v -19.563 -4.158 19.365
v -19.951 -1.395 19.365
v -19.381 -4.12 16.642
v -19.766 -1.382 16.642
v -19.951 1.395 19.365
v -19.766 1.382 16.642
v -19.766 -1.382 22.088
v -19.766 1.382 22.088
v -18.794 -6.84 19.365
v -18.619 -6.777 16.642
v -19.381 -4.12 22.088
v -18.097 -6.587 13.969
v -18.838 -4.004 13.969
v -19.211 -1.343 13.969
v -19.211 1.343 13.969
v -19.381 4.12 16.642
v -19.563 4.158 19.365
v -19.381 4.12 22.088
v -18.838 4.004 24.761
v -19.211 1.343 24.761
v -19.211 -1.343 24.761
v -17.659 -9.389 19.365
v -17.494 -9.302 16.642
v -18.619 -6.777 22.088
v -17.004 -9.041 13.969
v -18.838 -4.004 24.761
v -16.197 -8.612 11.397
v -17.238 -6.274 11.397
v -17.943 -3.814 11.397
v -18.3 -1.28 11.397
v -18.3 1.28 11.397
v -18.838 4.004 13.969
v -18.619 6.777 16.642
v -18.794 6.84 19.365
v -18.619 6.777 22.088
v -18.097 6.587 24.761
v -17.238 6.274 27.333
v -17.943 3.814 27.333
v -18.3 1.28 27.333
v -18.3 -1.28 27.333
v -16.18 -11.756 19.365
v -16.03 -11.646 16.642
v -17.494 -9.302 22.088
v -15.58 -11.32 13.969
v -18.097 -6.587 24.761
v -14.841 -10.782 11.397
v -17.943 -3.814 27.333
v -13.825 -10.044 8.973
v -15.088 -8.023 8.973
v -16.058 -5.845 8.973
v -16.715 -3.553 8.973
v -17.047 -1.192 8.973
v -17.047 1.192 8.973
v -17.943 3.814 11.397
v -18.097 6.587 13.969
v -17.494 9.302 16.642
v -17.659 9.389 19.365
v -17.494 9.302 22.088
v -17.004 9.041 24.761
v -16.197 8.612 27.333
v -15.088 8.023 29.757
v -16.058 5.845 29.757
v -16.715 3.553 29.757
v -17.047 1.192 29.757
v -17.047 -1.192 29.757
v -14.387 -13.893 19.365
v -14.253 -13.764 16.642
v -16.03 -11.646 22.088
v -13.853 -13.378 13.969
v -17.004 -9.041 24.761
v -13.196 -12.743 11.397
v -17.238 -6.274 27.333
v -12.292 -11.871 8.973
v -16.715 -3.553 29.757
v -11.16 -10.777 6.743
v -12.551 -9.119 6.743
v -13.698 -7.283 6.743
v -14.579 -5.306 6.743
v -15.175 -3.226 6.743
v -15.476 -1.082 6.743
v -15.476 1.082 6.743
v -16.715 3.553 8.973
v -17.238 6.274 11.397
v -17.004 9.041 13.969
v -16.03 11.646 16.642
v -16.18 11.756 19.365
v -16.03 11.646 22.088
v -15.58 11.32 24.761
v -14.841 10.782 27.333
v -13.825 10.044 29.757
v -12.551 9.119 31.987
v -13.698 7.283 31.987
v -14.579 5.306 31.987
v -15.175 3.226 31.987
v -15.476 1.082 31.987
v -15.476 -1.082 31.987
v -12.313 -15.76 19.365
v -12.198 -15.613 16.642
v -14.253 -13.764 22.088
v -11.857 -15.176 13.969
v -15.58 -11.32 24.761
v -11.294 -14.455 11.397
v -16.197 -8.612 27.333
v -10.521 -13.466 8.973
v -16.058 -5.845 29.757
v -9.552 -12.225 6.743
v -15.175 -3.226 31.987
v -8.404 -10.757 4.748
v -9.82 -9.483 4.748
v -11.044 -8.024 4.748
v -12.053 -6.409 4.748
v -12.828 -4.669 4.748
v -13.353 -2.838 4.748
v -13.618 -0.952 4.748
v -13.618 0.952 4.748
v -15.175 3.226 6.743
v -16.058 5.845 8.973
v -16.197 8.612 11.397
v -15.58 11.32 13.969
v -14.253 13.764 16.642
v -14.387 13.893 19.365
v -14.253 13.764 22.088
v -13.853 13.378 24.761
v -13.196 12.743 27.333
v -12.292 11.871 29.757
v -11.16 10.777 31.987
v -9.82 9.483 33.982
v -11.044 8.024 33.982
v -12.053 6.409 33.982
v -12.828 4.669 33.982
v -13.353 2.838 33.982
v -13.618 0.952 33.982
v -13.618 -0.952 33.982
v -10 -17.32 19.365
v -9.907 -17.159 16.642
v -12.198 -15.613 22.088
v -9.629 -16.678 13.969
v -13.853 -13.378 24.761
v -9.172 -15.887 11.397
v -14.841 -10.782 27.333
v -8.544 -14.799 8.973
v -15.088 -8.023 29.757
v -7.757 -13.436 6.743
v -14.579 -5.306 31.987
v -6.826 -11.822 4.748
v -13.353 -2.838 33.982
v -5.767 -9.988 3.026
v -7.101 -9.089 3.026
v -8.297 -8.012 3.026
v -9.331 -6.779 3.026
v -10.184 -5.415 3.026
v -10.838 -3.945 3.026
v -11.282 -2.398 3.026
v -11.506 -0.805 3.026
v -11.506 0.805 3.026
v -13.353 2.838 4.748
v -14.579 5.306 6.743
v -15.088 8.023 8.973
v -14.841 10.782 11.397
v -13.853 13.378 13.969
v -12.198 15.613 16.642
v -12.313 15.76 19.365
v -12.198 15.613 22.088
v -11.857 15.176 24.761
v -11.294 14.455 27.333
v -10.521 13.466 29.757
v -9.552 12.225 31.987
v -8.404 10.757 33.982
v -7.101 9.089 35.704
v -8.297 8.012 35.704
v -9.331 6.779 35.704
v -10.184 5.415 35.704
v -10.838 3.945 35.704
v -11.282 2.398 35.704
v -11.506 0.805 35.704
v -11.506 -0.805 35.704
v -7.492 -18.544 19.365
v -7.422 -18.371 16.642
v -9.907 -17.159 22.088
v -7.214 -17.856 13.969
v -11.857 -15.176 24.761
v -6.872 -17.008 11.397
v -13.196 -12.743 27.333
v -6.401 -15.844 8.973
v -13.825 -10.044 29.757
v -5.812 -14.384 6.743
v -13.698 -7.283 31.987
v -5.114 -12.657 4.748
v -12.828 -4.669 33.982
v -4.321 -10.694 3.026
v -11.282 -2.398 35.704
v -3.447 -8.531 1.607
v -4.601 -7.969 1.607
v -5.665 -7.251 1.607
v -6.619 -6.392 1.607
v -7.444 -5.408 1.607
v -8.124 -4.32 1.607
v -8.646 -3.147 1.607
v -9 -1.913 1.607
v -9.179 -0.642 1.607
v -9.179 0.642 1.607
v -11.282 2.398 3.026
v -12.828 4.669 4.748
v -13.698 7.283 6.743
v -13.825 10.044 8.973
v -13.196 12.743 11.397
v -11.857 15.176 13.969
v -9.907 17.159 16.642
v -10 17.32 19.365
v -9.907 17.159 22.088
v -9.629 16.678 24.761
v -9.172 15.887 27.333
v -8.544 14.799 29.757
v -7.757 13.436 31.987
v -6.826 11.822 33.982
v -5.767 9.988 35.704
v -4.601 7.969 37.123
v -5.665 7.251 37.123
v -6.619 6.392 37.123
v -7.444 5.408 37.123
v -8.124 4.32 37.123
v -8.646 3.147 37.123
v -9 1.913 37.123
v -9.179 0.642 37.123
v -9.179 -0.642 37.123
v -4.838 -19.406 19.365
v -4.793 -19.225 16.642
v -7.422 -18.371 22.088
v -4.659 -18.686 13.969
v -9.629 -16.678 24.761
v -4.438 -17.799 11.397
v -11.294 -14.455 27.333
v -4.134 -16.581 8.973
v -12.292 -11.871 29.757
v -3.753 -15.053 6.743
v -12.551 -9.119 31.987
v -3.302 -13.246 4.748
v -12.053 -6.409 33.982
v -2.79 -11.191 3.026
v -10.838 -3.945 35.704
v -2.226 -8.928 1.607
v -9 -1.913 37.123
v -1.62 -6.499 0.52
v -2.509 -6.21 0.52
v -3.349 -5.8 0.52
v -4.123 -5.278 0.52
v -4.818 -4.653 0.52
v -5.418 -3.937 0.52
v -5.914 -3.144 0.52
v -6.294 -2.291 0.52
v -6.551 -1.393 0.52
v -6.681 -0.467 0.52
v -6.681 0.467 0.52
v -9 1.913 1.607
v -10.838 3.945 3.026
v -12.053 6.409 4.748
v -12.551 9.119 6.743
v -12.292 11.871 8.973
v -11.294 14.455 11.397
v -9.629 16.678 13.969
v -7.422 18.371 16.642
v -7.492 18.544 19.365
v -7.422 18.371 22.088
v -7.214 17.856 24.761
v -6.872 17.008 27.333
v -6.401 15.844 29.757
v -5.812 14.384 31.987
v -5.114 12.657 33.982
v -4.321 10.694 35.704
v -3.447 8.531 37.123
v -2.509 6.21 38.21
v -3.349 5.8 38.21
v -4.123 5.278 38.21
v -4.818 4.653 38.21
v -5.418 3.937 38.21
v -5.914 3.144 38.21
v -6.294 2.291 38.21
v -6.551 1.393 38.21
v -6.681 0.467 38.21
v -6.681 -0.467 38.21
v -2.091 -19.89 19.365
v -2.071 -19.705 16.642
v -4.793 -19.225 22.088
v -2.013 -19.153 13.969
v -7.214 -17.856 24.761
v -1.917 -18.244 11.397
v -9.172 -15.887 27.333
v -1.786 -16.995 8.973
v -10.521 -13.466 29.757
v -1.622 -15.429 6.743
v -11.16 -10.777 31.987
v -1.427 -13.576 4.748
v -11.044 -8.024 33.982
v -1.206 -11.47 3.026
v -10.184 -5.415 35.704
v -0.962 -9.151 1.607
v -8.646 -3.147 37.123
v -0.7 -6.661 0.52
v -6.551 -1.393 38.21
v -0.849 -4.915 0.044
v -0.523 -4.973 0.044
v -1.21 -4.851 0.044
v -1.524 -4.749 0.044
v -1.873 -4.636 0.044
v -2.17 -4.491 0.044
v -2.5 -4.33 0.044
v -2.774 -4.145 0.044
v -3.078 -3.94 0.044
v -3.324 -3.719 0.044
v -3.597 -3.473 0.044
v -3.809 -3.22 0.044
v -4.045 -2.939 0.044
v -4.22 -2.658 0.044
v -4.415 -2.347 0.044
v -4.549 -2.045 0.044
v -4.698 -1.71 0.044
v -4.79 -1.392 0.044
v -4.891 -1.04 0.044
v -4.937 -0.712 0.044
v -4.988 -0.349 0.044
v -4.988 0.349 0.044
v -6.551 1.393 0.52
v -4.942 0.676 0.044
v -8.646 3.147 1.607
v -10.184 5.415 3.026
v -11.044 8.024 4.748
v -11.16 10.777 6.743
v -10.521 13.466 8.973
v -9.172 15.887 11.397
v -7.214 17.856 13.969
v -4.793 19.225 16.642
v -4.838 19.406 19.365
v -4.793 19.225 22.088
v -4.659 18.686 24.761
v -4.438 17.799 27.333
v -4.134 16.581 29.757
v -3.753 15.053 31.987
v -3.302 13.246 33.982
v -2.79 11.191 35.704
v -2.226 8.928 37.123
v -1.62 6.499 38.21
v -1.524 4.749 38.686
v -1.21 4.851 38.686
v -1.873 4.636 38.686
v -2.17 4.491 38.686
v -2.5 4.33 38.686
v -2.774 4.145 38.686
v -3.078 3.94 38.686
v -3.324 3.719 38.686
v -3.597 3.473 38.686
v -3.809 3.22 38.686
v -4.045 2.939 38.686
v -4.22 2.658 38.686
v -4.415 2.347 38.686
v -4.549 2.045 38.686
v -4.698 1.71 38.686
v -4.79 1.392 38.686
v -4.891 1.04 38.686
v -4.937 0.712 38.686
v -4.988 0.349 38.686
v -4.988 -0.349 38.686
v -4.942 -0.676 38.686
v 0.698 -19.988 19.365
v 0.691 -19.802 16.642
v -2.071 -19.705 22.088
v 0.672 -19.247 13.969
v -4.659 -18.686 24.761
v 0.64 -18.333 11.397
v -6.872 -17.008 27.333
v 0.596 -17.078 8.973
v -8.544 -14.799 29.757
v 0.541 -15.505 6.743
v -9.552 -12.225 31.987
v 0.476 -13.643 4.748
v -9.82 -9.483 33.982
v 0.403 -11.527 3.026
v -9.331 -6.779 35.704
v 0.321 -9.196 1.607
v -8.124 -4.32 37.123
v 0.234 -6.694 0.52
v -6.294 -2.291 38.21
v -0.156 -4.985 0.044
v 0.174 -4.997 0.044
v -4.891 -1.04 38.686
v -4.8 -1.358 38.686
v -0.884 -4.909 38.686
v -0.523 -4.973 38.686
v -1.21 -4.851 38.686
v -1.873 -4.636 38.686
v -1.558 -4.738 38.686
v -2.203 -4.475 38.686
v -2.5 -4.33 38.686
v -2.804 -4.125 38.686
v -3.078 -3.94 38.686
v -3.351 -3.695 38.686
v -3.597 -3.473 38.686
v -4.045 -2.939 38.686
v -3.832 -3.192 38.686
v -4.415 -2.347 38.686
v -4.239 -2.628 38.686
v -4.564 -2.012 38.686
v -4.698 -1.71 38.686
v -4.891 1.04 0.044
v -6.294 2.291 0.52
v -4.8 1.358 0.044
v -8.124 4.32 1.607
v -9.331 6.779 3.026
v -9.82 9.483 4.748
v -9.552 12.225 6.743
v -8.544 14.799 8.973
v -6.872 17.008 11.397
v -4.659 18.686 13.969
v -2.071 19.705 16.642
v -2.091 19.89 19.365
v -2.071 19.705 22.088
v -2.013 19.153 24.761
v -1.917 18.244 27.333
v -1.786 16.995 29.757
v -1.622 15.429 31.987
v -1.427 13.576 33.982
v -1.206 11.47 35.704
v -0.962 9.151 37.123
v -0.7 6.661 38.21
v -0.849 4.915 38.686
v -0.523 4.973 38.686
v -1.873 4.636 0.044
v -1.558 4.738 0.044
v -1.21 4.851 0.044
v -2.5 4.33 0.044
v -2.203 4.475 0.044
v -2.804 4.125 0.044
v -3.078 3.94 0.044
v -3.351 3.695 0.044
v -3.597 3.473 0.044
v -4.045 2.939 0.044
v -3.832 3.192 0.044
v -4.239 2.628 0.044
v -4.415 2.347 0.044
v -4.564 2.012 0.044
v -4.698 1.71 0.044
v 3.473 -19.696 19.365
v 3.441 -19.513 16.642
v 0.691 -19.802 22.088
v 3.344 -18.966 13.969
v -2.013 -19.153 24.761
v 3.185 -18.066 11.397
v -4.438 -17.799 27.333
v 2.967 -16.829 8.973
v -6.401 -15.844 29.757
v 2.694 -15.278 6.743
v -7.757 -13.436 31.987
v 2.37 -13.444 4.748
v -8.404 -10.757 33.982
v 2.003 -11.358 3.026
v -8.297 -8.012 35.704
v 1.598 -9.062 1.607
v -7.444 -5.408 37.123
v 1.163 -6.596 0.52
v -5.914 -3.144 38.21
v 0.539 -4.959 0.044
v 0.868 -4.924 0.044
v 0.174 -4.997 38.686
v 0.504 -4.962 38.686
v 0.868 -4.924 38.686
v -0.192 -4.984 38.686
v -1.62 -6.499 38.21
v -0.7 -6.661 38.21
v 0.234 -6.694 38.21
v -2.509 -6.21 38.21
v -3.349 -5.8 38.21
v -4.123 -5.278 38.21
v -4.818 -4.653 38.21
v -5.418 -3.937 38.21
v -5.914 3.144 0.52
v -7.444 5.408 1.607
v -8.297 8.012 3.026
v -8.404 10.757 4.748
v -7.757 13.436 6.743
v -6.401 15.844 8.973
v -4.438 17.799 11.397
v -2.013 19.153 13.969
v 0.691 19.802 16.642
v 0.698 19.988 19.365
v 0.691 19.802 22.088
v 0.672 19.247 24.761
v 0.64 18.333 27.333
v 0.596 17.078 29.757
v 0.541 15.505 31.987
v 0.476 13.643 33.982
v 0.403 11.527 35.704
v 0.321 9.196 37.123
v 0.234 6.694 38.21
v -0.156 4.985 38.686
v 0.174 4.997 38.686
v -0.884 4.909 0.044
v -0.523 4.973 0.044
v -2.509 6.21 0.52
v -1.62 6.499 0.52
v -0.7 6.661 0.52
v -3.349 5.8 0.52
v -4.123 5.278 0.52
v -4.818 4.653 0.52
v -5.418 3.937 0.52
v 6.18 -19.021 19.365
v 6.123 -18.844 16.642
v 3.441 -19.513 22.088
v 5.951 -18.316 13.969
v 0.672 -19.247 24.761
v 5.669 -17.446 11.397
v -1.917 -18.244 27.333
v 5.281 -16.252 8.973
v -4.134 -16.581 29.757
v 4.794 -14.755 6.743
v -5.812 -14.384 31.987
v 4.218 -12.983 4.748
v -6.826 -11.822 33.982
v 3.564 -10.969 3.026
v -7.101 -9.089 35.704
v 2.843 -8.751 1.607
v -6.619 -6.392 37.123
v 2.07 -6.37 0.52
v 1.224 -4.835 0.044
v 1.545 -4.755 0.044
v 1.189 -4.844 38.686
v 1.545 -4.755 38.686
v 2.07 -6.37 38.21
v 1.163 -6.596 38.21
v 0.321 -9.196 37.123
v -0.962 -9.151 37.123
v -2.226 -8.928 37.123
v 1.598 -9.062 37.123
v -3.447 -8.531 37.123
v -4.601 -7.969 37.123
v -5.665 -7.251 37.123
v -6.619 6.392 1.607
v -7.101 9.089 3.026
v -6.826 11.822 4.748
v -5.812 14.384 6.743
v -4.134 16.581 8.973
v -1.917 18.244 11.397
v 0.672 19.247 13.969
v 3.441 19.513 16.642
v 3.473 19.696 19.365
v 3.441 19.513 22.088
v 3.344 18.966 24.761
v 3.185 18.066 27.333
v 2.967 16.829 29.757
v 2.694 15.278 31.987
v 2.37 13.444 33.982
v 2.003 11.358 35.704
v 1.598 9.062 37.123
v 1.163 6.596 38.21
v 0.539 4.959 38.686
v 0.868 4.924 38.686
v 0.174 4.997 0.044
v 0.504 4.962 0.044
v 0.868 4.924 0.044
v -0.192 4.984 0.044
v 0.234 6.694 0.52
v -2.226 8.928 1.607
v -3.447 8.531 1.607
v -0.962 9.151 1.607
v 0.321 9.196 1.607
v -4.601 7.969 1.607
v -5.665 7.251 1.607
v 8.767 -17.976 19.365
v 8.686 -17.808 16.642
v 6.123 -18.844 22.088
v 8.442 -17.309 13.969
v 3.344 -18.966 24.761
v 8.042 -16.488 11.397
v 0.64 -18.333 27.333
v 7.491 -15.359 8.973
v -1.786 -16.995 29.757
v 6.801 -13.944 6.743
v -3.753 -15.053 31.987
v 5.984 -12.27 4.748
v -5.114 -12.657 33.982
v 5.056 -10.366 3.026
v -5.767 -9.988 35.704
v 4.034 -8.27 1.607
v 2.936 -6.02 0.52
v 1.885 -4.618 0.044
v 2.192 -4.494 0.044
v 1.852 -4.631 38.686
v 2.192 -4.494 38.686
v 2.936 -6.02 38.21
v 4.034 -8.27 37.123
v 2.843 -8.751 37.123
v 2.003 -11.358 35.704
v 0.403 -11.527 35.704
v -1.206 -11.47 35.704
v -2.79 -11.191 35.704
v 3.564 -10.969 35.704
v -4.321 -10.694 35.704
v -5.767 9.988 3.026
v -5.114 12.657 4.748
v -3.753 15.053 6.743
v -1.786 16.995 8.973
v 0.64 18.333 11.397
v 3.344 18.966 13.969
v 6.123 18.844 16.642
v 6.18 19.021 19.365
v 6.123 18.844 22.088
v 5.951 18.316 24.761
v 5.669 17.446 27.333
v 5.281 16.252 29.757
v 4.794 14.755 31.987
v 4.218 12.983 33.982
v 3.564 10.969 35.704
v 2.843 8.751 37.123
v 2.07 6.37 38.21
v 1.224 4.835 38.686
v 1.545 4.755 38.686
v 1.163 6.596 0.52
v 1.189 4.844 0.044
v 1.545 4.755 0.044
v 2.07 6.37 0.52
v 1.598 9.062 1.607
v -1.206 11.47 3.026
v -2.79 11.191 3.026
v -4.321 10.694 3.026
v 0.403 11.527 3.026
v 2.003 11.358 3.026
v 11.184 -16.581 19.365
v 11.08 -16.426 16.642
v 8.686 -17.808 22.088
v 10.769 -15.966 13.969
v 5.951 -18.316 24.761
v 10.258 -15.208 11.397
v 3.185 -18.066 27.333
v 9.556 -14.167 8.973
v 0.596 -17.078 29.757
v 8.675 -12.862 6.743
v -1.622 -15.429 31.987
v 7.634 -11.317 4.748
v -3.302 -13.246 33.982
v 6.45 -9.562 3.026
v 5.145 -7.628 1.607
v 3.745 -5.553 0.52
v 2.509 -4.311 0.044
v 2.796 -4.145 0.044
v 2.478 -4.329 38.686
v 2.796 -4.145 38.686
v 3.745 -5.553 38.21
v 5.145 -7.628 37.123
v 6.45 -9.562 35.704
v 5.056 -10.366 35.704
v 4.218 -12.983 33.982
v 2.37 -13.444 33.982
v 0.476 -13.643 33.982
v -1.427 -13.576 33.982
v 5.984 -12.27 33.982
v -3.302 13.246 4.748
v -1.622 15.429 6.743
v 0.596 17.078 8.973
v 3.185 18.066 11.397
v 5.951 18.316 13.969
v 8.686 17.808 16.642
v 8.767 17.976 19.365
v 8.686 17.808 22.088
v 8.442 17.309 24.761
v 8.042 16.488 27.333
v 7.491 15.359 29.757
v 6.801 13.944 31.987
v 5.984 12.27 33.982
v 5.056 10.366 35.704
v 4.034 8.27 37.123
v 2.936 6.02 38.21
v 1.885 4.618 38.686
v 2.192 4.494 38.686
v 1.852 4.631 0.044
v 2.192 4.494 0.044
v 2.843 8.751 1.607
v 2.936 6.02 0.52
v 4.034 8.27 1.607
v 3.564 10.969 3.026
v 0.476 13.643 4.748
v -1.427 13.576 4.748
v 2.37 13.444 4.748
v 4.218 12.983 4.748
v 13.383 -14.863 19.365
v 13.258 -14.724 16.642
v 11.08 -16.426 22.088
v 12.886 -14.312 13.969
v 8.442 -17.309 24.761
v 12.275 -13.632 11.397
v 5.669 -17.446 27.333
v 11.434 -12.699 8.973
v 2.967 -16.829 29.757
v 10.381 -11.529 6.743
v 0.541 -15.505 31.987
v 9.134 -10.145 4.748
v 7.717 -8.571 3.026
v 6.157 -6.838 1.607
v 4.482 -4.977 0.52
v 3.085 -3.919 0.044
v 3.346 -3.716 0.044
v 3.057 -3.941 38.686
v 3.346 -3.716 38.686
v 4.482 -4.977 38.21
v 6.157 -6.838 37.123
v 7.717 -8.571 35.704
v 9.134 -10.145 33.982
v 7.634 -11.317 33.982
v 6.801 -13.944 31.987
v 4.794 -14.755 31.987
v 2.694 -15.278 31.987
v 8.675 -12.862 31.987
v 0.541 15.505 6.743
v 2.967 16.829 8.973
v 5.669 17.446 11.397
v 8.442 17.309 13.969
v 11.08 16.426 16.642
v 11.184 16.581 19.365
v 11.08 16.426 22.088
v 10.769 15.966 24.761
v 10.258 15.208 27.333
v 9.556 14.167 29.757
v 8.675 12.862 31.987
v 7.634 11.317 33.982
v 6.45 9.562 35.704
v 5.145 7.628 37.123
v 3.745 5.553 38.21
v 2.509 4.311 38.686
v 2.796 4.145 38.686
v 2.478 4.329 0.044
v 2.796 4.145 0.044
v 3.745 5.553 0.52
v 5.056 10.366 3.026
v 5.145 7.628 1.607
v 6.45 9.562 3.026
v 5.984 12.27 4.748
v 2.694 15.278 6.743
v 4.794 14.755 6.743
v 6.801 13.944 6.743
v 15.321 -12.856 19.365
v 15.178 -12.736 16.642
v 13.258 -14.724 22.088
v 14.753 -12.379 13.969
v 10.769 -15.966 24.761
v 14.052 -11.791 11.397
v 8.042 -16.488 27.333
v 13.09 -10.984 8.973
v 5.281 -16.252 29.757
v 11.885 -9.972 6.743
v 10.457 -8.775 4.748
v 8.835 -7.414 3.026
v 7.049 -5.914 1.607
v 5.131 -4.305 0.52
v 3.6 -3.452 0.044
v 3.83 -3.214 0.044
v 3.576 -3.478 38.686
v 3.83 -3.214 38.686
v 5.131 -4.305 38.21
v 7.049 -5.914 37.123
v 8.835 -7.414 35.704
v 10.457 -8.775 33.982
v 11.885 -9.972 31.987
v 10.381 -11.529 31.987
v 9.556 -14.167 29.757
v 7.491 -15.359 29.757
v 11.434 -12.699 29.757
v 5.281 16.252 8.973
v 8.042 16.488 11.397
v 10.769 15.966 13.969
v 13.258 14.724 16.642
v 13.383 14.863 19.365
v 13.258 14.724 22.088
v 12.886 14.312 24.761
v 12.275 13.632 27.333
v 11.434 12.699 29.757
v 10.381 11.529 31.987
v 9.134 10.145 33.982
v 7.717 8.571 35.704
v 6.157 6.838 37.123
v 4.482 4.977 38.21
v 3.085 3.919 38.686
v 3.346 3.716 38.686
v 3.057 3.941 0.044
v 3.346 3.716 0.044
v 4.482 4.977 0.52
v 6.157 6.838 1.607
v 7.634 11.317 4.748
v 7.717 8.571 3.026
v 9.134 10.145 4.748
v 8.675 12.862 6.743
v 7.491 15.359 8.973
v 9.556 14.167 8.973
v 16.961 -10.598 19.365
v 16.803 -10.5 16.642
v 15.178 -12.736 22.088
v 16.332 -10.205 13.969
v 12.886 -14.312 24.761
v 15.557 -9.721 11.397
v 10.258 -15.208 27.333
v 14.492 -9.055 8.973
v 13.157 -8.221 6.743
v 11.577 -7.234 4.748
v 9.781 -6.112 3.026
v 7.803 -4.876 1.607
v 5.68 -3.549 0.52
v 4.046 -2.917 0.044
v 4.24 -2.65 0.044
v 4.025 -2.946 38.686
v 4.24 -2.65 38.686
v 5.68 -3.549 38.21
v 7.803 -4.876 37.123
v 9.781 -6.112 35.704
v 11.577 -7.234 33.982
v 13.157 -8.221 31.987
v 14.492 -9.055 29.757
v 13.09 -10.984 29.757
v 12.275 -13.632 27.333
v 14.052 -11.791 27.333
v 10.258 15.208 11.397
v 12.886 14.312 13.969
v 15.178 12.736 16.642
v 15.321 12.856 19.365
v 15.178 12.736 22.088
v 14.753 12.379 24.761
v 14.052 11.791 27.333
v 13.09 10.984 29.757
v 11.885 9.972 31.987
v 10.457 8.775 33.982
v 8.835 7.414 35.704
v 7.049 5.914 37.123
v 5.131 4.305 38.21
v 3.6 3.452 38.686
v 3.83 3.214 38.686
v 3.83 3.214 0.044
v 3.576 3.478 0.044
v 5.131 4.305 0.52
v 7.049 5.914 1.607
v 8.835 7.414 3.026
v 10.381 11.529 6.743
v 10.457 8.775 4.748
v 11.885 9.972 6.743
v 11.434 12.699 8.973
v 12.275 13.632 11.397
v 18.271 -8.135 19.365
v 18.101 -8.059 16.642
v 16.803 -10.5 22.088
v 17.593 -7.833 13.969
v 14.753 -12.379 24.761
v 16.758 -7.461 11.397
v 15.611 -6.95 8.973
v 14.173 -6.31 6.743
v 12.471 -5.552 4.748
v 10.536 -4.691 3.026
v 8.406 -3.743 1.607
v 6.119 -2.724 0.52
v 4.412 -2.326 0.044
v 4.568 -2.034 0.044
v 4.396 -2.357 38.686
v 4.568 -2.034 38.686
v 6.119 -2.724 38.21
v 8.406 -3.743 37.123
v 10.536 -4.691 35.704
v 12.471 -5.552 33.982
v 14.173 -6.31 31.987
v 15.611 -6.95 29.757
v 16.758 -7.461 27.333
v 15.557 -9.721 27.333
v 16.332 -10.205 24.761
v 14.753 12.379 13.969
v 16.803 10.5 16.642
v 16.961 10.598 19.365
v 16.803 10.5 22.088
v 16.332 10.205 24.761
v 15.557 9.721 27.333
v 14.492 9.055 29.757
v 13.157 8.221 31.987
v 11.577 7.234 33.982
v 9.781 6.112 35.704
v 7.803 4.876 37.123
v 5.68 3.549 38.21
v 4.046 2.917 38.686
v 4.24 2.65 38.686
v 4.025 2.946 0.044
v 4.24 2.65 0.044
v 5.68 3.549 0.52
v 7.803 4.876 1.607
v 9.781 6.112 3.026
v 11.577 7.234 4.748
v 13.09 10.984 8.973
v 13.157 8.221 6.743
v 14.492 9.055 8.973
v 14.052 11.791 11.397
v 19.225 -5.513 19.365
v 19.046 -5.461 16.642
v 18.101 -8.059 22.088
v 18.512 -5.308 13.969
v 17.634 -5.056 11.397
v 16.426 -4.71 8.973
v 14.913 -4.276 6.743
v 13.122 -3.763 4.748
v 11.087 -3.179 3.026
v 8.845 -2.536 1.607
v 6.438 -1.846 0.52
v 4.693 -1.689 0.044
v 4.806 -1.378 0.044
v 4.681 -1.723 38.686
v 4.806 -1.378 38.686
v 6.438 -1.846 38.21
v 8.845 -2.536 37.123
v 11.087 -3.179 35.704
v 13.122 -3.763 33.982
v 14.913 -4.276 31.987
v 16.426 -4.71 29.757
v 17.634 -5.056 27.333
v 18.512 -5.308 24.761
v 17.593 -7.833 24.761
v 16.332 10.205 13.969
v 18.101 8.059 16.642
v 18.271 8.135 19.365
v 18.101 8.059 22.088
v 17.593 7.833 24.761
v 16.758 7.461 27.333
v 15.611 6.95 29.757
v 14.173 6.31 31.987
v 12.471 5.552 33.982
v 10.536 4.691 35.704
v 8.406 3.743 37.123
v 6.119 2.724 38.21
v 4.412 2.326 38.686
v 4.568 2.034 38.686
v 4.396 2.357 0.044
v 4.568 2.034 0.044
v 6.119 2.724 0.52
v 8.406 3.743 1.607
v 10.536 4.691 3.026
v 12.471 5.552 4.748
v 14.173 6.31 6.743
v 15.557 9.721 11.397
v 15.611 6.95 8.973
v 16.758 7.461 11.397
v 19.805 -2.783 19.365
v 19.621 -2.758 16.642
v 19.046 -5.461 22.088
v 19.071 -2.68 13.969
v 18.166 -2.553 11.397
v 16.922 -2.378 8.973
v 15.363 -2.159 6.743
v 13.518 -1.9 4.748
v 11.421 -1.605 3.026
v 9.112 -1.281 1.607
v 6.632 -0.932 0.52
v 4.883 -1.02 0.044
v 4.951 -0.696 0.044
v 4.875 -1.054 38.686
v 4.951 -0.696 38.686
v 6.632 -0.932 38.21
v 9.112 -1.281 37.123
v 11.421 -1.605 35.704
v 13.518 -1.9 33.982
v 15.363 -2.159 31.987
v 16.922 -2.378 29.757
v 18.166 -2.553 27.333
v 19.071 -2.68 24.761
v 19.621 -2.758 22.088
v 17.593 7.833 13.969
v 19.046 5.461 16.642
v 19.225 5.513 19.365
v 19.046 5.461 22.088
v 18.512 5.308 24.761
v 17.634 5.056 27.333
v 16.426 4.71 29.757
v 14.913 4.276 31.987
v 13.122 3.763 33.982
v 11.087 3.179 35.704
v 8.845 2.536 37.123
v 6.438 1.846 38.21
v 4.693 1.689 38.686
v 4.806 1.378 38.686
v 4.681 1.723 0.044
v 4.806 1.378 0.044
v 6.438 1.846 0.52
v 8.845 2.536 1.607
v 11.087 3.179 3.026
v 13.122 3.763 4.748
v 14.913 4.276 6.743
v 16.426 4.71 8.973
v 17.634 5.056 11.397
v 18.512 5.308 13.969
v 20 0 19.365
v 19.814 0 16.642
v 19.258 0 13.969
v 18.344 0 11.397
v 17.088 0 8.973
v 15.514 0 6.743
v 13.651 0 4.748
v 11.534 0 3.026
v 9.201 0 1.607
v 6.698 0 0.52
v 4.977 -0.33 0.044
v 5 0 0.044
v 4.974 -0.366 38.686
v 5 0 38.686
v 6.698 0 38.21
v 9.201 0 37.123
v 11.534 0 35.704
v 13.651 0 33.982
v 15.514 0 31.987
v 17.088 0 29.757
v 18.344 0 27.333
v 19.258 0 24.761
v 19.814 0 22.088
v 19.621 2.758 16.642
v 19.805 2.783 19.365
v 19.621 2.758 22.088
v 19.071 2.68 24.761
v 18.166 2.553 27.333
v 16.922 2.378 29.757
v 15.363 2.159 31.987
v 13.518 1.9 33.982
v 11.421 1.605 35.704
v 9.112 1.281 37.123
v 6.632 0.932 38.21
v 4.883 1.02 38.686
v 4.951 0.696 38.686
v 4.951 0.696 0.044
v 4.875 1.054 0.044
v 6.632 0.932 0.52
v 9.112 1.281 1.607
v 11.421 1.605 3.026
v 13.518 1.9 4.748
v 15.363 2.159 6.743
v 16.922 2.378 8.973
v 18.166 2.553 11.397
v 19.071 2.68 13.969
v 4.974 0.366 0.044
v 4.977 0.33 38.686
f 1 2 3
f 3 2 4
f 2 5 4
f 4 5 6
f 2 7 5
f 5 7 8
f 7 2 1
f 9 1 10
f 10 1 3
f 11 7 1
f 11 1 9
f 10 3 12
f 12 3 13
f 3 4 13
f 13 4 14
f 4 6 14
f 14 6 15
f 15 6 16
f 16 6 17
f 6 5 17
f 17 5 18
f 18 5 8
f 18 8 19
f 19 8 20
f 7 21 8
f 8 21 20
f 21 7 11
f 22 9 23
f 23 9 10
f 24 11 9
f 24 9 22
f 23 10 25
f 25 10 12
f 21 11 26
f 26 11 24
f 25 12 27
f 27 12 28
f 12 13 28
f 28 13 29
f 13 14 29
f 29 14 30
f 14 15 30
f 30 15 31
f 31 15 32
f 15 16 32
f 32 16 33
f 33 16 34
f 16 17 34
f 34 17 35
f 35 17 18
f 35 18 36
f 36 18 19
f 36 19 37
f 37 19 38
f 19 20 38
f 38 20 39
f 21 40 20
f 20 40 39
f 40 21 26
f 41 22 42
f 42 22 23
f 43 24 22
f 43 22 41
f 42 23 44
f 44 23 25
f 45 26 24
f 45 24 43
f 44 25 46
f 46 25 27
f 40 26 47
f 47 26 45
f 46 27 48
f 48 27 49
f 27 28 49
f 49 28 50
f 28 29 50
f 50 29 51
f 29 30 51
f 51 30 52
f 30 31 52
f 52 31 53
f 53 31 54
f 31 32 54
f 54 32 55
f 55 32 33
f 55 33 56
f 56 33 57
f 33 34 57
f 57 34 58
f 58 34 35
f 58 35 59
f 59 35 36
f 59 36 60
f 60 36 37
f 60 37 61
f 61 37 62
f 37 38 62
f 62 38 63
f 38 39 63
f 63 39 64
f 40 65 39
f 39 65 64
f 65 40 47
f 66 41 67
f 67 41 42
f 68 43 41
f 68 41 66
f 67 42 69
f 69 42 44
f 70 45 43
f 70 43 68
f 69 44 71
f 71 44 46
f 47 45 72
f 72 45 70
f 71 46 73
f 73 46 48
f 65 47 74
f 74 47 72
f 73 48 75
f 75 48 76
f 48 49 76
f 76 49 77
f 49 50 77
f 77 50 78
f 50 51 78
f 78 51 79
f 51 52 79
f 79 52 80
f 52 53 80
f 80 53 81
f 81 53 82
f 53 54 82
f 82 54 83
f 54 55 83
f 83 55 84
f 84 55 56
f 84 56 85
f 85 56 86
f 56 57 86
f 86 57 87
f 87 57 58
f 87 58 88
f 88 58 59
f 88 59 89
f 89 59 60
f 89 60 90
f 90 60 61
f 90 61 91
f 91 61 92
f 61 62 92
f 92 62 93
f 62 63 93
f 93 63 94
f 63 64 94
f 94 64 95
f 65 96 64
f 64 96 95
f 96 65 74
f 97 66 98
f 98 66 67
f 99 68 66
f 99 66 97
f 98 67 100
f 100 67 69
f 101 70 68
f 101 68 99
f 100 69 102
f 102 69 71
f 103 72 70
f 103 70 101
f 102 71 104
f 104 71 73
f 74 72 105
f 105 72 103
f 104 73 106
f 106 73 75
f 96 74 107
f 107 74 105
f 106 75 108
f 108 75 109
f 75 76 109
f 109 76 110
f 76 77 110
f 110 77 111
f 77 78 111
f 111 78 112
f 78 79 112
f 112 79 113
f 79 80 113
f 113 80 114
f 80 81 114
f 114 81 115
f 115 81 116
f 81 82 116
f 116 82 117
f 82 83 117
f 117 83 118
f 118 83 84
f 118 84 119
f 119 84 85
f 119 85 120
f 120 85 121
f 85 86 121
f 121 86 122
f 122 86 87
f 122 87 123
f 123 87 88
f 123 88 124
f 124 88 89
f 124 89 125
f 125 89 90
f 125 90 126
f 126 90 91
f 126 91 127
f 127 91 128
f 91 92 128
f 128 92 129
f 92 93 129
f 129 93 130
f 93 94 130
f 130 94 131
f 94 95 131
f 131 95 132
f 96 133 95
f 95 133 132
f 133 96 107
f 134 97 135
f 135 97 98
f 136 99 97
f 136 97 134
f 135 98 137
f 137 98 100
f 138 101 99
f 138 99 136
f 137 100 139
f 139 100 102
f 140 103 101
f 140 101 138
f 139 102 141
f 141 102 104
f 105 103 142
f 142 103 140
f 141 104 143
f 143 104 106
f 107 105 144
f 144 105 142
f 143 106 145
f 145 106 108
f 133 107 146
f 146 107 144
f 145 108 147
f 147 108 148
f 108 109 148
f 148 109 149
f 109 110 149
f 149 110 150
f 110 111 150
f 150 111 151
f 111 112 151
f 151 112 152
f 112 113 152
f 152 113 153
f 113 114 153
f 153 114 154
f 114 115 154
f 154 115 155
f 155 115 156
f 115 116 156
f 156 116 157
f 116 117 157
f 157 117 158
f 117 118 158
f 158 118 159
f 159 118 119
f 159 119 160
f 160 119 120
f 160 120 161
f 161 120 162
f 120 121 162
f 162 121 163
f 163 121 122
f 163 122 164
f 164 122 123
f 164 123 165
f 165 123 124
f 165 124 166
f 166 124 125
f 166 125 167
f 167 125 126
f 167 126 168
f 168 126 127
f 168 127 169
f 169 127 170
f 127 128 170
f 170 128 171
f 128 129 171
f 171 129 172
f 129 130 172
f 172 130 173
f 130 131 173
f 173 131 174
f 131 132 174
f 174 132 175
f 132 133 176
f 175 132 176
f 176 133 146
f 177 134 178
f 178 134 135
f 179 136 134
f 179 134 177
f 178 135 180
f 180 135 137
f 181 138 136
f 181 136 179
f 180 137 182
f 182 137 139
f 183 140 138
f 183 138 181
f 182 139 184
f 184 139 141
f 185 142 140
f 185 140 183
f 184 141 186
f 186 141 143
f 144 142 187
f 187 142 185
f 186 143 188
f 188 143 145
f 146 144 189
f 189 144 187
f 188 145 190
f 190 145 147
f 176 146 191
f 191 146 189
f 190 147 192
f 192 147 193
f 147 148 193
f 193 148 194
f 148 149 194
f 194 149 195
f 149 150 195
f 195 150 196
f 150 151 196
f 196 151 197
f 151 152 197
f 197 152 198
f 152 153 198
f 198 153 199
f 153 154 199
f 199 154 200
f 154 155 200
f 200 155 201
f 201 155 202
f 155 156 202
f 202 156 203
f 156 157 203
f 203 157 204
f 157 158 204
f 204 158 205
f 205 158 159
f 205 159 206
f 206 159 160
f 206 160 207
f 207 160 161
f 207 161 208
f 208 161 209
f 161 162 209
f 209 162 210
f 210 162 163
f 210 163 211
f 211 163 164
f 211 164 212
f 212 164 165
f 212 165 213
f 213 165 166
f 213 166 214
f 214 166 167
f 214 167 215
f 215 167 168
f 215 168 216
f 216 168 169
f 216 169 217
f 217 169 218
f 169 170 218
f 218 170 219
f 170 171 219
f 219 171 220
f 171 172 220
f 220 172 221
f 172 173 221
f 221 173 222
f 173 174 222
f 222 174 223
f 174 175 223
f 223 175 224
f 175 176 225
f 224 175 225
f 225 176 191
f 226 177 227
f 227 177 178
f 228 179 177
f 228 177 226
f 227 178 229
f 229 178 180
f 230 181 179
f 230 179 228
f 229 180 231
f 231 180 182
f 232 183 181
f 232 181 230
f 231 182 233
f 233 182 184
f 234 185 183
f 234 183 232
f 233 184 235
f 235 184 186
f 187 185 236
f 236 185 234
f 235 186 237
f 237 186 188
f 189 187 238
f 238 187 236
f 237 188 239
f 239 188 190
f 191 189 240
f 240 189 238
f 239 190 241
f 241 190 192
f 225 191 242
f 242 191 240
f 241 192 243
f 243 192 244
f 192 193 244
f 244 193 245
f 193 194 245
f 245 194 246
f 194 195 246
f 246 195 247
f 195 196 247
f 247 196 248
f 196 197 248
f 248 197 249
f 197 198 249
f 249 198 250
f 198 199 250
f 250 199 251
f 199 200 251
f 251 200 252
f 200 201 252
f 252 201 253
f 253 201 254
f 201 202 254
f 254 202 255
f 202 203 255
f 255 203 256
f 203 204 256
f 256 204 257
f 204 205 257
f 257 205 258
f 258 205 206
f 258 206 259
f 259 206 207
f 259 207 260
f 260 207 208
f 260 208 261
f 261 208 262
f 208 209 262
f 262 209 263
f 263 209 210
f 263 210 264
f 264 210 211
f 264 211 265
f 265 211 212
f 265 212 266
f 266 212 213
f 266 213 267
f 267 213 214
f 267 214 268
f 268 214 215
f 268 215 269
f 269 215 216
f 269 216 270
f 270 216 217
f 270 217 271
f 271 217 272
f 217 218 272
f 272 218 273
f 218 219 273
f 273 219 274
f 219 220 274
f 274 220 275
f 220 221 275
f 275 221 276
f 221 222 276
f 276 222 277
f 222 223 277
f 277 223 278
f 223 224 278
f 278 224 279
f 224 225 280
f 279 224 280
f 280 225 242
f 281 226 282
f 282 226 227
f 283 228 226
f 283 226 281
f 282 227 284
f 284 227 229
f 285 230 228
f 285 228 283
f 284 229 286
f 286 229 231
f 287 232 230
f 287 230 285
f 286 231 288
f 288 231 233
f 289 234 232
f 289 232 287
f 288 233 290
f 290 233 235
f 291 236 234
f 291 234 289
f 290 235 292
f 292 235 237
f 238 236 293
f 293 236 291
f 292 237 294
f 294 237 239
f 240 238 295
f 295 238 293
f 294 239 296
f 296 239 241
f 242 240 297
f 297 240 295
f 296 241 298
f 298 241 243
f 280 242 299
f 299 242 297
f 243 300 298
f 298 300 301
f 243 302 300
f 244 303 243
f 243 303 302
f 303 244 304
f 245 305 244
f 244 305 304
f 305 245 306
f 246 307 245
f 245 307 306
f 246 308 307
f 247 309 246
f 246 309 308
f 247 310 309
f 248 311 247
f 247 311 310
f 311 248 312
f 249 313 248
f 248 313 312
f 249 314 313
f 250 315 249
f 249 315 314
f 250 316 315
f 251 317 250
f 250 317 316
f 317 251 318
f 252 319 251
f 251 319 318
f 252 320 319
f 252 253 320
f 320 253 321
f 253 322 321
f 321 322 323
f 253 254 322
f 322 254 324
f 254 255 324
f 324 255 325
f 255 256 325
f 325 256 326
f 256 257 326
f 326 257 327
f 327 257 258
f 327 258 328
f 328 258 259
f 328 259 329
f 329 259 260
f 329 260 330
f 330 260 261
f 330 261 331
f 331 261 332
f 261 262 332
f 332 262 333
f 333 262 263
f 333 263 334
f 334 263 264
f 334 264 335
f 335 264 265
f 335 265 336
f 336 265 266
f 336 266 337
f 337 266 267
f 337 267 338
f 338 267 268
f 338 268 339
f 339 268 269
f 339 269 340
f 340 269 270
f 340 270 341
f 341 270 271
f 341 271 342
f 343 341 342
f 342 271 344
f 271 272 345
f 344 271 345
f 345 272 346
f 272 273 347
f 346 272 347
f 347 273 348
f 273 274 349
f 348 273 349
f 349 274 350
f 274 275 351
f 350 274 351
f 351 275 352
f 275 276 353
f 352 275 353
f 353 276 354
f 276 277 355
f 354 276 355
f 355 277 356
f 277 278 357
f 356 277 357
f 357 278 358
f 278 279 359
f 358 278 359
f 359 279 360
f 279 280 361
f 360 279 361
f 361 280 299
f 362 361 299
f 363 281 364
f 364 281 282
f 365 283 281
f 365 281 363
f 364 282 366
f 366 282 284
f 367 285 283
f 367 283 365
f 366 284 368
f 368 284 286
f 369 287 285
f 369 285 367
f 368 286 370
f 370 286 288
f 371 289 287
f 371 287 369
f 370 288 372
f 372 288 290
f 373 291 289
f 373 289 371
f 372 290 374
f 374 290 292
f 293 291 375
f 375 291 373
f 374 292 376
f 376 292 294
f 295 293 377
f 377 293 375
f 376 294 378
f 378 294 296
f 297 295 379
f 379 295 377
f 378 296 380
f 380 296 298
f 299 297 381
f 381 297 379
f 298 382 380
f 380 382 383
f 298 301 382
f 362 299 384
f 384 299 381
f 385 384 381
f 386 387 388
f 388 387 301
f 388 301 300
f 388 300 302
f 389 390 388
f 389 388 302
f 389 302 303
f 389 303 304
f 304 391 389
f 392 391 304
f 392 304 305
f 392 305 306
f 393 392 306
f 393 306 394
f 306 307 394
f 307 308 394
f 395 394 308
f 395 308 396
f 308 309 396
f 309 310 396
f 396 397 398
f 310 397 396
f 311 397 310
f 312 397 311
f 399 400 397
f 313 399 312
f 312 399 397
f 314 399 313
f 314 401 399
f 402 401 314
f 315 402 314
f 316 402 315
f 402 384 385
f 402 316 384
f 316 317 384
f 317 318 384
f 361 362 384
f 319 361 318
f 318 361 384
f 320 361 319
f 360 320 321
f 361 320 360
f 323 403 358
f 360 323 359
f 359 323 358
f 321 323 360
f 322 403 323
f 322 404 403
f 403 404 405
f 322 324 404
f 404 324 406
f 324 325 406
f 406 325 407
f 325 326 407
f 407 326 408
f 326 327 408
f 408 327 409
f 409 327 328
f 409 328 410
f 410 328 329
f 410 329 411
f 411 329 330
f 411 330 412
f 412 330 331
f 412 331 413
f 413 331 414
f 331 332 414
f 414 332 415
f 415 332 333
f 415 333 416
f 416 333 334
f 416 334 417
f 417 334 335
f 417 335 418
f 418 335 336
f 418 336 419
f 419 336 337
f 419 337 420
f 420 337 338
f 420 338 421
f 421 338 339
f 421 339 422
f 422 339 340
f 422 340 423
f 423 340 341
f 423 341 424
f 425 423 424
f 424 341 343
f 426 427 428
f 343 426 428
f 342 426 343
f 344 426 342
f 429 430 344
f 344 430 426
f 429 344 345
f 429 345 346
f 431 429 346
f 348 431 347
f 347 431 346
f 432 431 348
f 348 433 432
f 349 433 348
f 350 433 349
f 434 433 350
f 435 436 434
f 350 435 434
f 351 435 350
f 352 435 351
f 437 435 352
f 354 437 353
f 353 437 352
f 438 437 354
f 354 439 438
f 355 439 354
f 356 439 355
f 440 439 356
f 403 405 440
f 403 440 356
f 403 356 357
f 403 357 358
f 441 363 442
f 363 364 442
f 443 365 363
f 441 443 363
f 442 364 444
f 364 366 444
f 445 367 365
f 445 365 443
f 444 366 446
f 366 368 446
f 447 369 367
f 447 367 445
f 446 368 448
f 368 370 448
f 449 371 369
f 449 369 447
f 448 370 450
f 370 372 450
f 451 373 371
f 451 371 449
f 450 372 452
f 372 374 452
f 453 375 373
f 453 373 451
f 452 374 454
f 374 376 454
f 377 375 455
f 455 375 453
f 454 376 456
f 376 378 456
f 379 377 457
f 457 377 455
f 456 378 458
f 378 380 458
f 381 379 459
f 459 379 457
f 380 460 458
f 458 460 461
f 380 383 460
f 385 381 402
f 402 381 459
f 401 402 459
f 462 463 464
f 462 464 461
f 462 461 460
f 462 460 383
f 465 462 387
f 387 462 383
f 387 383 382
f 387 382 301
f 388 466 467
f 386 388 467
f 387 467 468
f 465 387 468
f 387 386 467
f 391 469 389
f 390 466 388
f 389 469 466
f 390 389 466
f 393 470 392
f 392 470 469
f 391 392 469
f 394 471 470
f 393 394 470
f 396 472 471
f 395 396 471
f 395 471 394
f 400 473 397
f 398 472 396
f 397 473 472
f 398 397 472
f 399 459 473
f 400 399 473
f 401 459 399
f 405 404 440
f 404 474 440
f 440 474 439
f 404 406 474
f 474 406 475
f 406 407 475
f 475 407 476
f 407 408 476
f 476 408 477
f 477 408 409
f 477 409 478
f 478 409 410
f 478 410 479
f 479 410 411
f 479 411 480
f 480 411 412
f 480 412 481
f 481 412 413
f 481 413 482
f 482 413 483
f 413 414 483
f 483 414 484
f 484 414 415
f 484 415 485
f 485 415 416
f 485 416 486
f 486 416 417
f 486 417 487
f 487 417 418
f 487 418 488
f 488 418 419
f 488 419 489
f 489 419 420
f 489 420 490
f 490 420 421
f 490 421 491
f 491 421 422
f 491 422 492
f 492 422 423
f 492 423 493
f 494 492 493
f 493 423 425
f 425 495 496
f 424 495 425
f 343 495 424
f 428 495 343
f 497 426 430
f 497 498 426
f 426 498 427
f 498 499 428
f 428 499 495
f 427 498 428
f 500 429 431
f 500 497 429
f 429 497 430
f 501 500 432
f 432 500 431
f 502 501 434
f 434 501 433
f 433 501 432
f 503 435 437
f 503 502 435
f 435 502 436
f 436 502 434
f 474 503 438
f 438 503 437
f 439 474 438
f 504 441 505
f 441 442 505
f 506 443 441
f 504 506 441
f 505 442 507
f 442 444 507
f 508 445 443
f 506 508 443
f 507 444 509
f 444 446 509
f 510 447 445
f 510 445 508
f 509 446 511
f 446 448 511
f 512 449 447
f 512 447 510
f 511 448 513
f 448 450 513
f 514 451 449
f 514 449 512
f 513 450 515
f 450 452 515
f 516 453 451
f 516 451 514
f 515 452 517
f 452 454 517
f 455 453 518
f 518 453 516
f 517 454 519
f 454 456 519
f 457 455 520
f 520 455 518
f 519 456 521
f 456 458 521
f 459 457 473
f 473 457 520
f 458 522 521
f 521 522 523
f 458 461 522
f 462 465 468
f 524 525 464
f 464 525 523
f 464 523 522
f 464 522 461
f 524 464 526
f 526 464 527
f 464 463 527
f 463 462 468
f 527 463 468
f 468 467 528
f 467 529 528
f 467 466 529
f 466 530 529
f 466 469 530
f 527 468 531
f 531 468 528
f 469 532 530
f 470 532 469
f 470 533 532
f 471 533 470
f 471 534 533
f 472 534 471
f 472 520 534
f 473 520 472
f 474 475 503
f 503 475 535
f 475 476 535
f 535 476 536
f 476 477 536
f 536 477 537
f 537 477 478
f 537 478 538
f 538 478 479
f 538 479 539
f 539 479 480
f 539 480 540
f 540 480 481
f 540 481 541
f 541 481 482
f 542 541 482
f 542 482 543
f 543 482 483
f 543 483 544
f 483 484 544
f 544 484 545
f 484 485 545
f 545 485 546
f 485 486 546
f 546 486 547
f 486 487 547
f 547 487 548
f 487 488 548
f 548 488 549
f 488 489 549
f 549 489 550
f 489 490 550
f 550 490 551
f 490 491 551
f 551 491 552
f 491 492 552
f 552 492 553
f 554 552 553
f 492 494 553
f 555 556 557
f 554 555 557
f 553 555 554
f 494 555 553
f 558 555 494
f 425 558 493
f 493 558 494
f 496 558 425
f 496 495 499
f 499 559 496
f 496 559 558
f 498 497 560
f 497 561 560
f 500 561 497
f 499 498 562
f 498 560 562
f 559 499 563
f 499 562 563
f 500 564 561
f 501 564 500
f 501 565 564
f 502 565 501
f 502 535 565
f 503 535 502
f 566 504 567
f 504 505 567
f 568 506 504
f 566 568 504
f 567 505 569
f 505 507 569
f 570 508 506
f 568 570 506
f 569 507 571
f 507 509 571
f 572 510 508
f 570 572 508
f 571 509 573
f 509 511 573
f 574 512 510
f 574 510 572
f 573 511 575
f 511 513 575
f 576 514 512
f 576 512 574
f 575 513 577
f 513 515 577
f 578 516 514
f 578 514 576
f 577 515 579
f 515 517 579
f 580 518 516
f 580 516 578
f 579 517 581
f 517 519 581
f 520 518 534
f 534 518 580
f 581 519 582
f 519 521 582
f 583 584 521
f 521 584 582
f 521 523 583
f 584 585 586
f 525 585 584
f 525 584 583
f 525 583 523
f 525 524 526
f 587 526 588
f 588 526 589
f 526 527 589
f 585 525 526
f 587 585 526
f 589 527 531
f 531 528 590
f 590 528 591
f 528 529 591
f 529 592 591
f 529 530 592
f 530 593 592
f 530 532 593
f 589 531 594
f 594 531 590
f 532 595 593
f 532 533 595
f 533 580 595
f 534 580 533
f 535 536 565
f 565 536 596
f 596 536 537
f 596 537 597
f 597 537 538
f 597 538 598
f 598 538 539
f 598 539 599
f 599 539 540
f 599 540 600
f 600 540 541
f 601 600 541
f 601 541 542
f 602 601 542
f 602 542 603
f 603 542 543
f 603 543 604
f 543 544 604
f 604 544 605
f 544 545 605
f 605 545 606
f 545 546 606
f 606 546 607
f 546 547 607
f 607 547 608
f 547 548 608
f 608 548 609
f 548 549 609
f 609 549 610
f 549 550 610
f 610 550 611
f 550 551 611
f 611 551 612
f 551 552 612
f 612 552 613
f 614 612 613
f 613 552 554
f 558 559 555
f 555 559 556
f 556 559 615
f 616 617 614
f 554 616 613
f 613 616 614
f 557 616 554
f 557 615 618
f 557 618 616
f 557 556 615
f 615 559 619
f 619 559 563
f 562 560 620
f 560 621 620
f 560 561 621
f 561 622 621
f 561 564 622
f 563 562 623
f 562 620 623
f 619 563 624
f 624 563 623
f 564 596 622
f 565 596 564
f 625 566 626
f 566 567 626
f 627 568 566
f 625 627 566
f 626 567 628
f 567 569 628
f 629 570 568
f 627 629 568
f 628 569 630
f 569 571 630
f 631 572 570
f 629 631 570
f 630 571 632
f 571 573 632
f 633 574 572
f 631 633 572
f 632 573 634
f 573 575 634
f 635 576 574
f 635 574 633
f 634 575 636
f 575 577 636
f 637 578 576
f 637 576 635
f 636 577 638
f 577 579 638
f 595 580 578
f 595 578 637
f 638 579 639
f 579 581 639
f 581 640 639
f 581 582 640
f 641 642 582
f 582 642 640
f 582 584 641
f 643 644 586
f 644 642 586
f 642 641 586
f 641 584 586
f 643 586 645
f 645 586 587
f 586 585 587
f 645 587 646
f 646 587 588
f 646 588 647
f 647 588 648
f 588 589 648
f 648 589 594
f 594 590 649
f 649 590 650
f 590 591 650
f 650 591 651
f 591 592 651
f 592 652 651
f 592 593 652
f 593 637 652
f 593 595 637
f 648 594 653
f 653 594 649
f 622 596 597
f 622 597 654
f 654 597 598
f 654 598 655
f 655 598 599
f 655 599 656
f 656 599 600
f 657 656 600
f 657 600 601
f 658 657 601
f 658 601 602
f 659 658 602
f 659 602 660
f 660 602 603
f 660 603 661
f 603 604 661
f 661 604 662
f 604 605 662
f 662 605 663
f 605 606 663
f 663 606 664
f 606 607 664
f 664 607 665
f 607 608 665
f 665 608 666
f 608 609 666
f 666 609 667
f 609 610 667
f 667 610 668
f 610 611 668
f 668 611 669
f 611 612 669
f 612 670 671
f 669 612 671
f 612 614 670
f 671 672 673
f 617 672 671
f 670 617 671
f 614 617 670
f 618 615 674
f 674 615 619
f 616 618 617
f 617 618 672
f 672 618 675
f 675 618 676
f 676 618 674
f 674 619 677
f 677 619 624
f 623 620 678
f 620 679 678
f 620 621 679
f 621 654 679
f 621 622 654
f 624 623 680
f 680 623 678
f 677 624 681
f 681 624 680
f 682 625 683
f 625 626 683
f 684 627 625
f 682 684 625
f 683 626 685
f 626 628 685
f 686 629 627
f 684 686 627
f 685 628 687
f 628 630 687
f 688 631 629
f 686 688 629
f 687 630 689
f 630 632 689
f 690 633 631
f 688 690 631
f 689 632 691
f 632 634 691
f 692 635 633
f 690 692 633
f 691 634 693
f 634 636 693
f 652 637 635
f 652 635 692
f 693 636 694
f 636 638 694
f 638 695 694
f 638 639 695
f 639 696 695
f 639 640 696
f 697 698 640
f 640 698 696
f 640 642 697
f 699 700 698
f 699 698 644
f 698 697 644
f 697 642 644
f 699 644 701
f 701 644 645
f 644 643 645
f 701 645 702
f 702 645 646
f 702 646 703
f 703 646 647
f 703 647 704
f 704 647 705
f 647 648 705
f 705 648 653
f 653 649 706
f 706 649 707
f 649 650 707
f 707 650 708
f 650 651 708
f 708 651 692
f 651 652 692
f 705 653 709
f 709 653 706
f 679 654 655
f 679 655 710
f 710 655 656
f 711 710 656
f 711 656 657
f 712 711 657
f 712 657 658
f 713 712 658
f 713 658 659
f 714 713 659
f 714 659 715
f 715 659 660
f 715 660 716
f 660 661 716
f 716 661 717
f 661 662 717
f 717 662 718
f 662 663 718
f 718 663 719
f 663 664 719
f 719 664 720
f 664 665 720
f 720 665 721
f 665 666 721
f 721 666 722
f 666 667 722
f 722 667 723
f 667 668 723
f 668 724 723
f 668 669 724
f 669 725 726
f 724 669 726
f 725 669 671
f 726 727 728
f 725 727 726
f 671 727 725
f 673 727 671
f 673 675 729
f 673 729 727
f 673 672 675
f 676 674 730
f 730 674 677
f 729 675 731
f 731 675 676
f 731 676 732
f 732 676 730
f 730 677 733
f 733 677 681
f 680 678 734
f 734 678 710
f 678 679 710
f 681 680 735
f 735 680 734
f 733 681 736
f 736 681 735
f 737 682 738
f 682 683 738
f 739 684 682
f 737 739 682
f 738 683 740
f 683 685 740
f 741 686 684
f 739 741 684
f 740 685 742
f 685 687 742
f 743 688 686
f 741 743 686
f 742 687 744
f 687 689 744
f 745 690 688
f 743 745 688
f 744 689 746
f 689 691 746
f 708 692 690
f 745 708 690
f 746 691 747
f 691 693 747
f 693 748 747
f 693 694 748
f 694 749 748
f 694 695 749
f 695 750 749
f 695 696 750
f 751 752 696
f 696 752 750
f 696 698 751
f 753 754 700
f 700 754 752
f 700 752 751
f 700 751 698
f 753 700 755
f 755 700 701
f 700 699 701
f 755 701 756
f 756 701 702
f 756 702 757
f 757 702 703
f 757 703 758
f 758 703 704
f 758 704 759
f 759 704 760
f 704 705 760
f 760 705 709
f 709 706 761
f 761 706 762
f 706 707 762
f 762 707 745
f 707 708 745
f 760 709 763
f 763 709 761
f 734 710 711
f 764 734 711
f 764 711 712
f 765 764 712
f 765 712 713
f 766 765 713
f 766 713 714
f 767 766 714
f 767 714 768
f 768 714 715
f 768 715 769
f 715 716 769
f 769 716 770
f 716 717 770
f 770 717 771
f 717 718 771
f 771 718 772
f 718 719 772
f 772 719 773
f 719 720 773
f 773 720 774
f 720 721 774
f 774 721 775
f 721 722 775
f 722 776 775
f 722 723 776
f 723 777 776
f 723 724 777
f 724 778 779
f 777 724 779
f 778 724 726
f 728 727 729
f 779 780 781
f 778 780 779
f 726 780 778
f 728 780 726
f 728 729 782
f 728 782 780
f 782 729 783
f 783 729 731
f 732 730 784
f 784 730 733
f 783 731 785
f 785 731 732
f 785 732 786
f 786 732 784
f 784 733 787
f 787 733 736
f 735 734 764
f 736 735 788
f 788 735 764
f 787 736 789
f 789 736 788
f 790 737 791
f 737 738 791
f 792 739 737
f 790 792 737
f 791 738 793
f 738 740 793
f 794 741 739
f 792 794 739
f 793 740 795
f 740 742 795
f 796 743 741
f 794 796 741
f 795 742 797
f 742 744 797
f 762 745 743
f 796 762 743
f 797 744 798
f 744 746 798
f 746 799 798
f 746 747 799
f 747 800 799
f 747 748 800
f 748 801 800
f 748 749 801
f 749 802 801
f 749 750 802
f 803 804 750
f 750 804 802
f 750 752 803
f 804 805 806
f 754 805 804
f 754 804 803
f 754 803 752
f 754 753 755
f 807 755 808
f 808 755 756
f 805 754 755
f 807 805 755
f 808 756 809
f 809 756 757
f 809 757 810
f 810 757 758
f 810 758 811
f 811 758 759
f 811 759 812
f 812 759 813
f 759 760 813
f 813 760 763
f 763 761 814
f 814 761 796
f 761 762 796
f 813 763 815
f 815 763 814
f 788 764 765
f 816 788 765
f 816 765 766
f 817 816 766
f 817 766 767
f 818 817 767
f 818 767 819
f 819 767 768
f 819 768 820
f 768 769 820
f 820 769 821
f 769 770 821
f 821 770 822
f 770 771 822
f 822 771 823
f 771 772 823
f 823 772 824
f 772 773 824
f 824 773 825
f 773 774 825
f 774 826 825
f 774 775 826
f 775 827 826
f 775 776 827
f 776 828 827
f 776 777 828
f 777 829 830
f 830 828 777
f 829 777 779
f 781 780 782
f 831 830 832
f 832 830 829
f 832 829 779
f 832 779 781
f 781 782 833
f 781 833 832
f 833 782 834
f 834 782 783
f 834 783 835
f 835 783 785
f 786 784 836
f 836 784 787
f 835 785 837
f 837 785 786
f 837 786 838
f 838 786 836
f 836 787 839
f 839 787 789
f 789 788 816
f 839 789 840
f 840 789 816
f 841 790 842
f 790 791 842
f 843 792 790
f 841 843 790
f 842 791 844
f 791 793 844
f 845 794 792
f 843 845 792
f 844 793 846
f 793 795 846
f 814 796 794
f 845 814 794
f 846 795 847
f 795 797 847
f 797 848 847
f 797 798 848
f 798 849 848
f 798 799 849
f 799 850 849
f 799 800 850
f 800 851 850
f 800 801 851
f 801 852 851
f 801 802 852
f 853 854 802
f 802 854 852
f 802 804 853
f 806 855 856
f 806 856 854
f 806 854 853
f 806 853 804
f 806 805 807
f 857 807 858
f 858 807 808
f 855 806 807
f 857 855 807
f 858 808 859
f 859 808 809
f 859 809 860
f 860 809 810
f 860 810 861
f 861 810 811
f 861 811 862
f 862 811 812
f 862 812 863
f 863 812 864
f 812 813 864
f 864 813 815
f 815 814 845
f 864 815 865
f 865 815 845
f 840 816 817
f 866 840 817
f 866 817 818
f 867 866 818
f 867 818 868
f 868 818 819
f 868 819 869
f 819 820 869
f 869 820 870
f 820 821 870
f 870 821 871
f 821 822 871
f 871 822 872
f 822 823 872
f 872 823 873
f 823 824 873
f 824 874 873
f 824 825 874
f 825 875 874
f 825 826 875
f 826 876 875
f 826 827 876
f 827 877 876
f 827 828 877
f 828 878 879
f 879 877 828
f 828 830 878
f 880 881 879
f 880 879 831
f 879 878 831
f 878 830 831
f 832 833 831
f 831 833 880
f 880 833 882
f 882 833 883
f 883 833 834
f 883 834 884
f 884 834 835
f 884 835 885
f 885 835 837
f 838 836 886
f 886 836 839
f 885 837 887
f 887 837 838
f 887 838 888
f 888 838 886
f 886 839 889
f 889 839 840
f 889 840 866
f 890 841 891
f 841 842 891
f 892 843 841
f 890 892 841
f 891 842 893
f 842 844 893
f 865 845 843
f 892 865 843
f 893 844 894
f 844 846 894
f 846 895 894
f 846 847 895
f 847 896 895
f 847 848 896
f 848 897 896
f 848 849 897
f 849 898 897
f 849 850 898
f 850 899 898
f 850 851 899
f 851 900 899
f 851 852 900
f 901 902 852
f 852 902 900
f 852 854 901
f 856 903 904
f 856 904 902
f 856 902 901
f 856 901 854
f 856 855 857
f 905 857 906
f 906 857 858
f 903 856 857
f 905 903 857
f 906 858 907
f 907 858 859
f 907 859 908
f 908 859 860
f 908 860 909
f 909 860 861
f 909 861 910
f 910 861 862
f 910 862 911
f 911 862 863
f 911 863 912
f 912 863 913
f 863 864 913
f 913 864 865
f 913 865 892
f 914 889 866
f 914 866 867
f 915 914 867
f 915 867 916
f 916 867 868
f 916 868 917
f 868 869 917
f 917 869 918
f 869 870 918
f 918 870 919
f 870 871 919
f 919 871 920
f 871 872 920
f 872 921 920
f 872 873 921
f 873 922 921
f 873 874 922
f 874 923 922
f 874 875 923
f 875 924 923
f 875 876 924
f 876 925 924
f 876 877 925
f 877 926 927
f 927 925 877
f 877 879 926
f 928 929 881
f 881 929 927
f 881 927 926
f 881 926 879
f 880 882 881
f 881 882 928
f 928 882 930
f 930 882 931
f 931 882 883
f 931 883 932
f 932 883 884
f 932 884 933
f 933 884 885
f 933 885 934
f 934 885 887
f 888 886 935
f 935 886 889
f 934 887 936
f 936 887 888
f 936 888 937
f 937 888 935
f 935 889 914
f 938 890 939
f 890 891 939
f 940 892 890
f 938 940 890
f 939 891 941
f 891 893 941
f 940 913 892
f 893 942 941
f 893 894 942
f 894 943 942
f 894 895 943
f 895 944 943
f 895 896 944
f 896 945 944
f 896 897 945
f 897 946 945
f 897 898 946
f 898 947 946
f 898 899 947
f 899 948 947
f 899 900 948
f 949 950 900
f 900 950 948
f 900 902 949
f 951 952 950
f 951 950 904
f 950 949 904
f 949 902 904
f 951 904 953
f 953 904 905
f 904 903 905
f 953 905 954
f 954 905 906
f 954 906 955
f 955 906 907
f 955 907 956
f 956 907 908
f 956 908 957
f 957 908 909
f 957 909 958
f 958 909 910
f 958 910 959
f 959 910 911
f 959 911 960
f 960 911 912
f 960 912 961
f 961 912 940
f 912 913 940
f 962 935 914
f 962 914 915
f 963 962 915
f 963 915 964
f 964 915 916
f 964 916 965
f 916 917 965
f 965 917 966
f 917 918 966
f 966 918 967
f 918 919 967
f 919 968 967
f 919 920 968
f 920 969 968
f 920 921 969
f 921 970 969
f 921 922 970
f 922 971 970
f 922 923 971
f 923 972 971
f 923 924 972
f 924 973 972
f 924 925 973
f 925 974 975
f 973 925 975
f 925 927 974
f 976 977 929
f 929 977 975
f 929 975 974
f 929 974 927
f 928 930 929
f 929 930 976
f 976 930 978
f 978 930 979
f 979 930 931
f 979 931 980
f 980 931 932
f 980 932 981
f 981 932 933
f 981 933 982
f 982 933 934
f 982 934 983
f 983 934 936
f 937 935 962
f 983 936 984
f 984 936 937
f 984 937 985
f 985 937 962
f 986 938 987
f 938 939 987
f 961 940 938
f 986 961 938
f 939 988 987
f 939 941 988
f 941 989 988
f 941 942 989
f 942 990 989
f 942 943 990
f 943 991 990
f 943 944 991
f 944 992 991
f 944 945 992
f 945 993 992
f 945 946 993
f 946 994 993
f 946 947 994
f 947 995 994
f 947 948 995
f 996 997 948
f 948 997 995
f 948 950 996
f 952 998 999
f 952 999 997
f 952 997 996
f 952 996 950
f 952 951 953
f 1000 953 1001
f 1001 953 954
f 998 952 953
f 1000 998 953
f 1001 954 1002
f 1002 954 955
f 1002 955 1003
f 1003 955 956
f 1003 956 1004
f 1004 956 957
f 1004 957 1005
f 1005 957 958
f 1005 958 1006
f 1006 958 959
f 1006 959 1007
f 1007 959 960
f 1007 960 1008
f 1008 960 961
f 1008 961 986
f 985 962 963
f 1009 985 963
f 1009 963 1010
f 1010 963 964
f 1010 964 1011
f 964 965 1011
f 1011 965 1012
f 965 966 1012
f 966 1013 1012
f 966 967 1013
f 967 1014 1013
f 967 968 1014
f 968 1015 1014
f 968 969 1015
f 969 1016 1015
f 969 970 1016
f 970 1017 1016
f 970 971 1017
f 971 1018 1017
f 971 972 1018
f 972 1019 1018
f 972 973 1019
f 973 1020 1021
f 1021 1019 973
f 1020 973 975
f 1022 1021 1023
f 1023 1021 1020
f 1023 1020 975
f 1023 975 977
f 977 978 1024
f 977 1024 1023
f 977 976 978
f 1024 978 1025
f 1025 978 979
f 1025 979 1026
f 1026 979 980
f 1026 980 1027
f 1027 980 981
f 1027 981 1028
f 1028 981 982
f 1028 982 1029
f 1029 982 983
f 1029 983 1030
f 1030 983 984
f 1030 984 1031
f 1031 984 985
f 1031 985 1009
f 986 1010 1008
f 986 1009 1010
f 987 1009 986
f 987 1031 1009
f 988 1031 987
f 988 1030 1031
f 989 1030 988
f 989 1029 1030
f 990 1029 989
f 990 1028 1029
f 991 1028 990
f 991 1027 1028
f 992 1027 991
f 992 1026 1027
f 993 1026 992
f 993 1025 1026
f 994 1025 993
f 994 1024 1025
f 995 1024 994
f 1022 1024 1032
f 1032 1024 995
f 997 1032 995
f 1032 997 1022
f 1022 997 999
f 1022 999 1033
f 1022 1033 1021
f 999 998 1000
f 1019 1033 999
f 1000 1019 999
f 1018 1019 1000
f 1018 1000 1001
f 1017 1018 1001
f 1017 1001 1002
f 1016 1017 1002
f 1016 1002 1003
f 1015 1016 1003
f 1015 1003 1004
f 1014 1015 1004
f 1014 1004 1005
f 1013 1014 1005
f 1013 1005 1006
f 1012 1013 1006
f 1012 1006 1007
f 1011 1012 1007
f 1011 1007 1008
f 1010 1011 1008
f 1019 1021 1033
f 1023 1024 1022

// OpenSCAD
//  the pearl's radius
beadrad=20;
// the radius of the hole
hole=beadrad/4;



//making the bead
bead();

// moving the bead to the right place
module bead(){
  translate([0,0,(sqrt((beadrad*beadrad)-(hole*hole)))]) {
    beadmodule();   
  }
}


//makes the pearl module
module beadmodule() {
  difference() {
      sphere( beadrad ,$fn=45  );
      cylinder(2*beadrad+1, hole, hole,center=true, $fn=45 );
  }
}
